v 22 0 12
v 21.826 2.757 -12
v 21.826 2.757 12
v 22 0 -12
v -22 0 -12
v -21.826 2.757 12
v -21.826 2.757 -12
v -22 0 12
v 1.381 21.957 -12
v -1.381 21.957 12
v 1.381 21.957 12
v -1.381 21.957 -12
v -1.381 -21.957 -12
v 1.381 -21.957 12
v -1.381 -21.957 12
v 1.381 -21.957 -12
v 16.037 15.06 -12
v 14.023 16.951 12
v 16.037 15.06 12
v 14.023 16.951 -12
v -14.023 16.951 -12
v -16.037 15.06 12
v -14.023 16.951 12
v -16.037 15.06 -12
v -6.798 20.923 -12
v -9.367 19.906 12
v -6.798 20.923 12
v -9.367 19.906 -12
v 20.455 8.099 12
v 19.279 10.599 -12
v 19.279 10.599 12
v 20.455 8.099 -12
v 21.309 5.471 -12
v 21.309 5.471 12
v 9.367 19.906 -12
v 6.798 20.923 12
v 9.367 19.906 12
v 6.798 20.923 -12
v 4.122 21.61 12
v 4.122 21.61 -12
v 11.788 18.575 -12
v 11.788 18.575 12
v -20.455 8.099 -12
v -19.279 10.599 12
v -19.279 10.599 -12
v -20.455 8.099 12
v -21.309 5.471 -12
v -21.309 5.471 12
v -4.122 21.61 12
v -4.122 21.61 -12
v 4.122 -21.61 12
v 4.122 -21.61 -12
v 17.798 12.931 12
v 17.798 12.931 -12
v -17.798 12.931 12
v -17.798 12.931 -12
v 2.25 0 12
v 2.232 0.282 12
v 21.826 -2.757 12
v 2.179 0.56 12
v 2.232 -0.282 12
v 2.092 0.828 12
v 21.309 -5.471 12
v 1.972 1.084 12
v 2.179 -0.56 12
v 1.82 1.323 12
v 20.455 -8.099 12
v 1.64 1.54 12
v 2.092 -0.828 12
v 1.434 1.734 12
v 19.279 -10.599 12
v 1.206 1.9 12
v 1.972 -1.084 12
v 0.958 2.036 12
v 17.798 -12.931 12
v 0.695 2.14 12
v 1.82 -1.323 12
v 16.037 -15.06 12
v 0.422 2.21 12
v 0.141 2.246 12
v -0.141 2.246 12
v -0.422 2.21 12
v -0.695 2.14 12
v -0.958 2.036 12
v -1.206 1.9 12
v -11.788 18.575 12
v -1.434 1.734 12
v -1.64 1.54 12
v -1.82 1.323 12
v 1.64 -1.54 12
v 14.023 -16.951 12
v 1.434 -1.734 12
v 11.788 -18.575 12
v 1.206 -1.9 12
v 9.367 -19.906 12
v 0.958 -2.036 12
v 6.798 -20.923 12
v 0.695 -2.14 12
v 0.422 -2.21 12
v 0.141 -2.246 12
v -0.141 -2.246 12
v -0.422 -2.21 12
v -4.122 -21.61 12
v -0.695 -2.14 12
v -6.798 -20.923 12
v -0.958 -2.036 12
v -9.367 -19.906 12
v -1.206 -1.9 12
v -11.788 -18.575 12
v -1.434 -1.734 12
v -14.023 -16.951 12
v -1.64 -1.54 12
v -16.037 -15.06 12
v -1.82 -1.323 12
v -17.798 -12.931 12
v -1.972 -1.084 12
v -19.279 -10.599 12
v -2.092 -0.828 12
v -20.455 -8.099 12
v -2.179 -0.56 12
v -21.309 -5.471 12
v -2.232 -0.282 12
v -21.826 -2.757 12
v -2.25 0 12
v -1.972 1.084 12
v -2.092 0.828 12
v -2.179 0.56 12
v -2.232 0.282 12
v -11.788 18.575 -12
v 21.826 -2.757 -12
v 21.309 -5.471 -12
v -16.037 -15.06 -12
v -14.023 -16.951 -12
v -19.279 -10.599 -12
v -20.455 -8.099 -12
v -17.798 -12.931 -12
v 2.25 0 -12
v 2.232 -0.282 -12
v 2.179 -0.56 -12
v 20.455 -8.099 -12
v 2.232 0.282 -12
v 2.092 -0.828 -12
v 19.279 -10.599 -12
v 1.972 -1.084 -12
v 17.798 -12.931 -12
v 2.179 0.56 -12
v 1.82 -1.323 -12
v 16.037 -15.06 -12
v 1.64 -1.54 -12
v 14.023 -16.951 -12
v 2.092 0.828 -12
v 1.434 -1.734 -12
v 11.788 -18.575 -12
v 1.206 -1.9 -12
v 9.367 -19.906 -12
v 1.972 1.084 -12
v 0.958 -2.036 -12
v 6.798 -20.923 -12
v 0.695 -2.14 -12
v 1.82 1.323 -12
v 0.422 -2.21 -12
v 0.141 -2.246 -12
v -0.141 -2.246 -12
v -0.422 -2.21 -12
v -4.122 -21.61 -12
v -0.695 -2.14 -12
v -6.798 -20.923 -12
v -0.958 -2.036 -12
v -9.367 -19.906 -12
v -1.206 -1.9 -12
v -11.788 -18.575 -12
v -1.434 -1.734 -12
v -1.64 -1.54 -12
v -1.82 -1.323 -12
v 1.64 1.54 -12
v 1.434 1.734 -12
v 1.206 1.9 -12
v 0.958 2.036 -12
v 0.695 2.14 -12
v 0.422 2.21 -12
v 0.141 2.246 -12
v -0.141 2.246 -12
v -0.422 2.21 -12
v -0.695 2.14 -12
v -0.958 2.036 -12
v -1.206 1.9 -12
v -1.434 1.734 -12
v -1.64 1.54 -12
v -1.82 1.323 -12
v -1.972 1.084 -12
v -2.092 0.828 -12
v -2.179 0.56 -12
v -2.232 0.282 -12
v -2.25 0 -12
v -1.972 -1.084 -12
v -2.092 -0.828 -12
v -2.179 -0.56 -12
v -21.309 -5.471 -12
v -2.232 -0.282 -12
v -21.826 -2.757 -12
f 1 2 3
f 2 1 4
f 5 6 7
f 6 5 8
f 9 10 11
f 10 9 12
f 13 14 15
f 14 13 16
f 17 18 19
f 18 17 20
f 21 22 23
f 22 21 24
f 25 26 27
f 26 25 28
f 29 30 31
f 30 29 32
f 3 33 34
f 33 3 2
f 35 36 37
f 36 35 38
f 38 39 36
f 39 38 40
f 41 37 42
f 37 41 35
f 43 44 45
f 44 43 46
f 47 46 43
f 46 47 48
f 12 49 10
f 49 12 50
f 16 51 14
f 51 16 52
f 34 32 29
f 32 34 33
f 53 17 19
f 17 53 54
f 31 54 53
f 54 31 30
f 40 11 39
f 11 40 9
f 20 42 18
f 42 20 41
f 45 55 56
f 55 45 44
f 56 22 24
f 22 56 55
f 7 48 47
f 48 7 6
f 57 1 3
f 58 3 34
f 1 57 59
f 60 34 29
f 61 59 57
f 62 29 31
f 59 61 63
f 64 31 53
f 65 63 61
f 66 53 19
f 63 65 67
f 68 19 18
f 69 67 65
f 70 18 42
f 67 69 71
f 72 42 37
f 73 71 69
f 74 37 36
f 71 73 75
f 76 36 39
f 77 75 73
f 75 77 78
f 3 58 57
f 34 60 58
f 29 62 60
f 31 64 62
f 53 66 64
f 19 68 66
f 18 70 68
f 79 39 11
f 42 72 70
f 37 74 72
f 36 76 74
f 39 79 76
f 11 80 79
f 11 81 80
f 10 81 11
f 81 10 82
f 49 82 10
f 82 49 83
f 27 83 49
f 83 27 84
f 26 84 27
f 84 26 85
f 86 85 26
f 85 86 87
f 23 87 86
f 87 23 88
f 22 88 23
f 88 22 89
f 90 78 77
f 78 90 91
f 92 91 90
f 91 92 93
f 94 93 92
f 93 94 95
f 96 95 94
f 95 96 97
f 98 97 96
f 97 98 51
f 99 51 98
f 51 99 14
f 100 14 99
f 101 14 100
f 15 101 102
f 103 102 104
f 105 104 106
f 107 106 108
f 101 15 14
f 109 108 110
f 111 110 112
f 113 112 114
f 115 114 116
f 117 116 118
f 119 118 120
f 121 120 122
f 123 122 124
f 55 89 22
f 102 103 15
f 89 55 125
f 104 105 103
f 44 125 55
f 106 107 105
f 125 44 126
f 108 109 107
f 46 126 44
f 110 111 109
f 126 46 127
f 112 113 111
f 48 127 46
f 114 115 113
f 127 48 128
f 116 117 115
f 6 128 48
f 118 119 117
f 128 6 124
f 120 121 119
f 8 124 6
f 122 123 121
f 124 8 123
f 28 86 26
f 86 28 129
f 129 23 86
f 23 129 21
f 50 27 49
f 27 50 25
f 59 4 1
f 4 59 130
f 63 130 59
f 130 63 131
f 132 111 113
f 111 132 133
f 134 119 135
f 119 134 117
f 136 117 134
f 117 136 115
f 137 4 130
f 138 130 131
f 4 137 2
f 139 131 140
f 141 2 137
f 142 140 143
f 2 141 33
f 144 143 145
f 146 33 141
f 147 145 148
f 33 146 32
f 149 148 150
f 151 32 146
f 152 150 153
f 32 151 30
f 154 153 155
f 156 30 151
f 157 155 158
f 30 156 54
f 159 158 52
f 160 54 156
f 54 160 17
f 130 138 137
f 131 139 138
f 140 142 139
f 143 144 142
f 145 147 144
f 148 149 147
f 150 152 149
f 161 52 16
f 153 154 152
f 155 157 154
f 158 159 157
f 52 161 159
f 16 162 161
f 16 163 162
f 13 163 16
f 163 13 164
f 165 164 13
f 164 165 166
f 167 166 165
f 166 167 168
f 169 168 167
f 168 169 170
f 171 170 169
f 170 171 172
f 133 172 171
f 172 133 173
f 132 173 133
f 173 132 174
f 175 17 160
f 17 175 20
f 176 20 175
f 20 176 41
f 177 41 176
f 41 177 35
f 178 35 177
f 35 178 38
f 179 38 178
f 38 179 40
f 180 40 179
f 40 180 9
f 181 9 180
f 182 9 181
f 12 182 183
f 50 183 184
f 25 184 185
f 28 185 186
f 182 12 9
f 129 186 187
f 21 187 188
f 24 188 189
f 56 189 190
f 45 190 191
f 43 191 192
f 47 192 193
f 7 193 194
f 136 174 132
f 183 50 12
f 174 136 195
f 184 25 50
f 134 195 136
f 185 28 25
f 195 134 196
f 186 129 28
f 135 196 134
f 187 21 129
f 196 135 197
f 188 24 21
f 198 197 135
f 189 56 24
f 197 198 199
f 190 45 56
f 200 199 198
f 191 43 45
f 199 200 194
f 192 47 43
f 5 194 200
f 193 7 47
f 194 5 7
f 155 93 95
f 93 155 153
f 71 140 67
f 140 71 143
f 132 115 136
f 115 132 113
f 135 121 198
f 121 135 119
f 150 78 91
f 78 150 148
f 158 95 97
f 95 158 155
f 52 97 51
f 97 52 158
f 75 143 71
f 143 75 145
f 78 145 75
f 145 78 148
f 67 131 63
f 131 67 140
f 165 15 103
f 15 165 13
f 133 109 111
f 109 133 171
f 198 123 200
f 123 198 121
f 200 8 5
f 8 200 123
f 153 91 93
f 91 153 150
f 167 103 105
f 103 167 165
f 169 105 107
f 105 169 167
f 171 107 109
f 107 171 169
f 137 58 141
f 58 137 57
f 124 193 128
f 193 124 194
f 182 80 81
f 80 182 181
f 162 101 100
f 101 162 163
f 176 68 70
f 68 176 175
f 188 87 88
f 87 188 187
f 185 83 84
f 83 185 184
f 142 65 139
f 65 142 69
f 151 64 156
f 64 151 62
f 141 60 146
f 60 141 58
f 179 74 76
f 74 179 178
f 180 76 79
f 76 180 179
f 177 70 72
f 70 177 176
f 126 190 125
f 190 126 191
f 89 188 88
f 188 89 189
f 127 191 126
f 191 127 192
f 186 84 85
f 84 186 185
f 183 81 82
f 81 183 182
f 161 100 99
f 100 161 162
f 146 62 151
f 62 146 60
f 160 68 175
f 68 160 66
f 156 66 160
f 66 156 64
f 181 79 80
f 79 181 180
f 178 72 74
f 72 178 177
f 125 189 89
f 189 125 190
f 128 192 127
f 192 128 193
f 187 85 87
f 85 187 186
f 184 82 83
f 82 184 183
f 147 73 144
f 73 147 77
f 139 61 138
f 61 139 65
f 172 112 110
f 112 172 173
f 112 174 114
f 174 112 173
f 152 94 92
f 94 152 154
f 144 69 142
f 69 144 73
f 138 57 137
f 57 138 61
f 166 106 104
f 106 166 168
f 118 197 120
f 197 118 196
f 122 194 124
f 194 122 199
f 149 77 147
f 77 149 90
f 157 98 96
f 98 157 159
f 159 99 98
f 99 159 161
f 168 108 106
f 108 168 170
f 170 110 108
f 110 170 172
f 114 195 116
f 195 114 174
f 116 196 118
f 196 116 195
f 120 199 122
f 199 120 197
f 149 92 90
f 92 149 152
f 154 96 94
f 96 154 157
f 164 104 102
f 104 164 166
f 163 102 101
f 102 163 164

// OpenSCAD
$fn = 50;


difference() {
	union() {
		translate(v = [0, 0, -12.0000000000]) {
			cylinder(h = 24, r = 22.0000000000);
		}
	}
	union() {
		translate(v = [0, 0, -100.0000000000]) {
			cylinder(h = 200, r = 2.2500000000);
		}
	}
}
